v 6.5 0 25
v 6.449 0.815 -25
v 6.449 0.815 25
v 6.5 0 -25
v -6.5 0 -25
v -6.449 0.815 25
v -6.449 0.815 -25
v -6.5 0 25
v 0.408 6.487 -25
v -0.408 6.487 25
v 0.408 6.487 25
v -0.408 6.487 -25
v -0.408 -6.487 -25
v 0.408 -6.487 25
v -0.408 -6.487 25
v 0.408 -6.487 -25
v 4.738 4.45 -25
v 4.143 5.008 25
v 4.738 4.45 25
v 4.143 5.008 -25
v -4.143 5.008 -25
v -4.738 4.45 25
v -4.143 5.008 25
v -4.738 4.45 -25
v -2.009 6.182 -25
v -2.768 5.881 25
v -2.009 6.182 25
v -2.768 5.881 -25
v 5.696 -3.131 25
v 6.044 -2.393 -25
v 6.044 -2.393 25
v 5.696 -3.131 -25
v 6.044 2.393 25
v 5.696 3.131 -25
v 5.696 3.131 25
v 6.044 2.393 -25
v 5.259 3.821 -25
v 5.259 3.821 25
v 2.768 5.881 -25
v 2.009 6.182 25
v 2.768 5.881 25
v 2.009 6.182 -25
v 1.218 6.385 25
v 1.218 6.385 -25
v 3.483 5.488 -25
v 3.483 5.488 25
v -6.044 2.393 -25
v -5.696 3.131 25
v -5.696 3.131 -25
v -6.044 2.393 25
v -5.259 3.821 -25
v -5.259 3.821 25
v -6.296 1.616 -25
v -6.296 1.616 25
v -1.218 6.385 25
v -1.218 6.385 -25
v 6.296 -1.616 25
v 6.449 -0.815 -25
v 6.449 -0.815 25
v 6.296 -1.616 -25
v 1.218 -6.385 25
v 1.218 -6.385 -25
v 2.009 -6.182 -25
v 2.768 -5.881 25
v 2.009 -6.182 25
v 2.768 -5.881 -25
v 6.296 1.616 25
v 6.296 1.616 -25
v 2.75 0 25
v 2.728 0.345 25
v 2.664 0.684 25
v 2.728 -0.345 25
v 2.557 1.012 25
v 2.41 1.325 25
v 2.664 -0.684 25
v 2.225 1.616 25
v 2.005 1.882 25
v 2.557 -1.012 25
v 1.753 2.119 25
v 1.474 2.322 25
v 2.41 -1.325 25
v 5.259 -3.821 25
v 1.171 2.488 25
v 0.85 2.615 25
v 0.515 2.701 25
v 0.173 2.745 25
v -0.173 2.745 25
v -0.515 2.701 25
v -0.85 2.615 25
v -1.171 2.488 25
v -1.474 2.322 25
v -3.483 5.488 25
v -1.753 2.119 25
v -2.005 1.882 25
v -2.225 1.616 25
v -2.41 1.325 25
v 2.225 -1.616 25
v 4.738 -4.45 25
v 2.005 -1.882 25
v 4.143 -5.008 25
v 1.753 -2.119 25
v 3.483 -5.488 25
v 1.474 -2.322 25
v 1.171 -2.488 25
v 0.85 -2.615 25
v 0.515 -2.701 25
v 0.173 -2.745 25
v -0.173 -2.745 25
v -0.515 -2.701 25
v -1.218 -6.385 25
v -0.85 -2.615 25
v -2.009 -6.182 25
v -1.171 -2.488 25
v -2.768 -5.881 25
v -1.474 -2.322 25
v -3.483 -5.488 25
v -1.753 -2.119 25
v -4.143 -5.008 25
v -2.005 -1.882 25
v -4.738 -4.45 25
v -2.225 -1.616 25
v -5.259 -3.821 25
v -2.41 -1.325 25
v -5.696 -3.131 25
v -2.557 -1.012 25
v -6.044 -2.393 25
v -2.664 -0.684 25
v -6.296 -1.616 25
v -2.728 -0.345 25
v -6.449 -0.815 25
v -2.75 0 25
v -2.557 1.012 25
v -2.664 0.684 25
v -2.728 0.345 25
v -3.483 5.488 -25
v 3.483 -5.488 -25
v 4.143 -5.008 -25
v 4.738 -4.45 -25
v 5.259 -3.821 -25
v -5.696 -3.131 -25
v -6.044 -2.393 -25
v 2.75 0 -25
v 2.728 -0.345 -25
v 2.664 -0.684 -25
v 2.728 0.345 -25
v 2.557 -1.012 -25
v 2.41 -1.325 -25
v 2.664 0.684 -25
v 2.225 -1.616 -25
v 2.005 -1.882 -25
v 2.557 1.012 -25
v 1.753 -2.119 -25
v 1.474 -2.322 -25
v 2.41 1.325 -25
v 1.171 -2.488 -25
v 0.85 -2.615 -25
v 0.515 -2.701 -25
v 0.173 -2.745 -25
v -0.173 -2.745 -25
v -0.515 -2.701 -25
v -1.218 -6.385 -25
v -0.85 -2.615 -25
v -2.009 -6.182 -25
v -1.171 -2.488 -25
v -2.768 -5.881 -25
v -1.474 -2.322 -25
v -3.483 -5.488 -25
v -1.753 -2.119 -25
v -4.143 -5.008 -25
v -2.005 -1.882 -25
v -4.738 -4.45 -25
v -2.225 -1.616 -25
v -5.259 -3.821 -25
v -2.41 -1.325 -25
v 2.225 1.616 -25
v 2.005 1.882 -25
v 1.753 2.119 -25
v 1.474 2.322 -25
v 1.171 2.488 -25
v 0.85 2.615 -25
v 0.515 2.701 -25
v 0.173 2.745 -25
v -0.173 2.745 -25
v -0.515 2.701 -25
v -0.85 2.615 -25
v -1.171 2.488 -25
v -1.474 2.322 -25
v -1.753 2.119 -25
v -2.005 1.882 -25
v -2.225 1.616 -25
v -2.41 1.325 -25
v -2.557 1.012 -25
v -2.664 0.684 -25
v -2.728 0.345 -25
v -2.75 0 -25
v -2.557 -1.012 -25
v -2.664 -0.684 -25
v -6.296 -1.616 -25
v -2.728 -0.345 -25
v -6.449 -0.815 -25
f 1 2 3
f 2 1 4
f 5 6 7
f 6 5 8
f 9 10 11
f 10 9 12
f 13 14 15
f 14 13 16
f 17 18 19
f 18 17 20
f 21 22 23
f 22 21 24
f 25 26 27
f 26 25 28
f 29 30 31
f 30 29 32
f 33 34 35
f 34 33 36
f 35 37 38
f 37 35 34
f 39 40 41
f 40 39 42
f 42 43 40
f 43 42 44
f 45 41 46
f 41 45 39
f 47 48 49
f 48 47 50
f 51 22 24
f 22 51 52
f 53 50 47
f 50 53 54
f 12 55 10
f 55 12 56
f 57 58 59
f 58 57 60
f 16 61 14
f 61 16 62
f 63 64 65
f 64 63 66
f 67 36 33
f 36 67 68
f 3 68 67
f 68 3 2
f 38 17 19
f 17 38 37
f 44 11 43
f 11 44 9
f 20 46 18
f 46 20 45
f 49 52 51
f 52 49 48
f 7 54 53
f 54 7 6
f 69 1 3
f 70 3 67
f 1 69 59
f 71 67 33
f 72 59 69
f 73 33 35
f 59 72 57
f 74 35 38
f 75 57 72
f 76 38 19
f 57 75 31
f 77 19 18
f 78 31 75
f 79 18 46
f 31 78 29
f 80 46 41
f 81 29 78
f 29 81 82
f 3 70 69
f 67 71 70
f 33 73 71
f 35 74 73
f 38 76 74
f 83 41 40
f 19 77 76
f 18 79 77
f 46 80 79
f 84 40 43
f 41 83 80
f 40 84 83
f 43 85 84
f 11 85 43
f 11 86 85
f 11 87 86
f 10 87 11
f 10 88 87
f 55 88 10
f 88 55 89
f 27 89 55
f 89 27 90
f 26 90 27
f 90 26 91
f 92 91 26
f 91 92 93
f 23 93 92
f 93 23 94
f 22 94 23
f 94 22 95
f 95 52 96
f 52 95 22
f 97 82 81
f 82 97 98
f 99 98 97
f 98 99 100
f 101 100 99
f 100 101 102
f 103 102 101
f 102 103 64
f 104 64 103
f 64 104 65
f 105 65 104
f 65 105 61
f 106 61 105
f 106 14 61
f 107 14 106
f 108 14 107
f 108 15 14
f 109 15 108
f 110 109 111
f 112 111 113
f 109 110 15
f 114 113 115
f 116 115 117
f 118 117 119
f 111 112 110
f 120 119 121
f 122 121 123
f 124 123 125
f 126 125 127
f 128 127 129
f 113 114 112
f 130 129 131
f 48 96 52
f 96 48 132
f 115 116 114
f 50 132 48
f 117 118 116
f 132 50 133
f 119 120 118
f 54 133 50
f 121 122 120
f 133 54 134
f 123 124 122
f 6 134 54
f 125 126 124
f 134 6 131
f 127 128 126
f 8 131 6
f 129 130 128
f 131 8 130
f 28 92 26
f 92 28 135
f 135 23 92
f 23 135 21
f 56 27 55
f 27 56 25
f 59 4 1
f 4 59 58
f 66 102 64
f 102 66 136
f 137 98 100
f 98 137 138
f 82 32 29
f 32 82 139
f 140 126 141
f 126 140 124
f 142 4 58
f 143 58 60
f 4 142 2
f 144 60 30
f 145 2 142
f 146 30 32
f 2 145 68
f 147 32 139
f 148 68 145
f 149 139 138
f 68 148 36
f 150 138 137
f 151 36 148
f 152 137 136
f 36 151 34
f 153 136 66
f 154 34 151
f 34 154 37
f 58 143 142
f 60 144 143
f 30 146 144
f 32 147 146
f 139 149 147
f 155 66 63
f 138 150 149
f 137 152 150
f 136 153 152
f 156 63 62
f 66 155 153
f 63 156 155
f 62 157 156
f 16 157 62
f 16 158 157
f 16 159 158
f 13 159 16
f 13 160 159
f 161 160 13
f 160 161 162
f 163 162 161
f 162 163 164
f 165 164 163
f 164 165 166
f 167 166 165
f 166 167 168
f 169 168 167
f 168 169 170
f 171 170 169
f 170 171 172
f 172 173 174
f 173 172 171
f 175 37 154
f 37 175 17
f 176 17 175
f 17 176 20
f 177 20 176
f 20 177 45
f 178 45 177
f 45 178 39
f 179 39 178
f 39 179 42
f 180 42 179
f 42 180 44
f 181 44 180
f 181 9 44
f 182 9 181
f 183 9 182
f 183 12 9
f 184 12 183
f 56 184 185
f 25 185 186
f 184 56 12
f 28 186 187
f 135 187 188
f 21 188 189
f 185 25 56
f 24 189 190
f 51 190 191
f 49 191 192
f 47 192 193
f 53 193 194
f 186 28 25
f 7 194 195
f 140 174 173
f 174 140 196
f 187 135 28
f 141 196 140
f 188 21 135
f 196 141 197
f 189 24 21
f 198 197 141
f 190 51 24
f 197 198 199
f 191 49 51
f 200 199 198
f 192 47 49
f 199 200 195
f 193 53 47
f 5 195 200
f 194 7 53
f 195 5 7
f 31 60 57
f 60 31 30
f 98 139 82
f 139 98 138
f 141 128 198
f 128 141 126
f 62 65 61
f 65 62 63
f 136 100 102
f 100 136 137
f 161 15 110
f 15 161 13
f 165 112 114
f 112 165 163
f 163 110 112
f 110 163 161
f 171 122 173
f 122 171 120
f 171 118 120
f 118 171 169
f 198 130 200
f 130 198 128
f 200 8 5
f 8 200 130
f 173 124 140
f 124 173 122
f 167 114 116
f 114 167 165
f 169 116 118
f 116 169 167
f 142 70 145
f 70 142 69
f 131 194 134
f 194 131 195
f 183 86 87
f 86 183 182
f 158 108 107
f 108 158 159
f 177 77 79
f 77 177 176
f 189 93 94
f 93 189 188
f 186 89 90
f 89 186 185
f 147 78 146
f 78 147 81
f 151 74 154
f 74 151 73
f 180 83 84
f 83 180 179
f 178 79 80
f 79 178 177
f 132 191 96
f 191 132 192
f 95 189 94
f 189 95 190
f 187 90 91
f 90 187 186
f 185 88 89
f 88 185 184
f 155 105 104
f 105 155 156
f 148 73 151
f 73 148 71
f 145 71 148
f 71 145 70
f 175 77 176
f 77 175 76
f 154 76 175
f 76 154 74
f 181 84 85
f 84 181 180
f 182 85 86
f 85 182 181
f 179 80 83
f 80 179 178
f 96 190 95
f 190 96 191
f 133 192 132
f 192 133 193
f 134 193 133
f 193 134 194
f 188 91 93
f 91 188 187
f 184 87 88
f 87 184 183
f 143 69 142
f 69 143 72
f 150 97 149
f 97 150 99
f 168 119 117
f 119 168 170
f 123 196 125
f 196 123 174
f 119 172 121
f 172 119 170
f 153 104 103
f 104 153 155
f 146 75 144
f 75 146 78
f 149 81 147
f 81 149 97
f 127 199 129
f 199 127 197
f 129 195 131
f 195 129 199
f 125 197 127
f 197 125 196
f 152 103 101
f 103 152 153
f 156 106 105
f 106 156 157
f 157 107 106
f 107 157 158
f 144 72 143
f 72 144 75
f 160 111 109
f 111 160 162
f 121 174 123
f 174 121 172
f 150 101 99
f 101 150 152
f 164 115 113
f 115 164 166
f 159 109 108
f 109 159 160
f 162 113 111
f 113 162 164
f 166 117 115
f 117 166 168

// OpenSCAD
$fn = 50;


difference() {
	union() {
		translate(v = [0, 0, -25.0000000000]) {
			cylinder(h = 50, r = 6.5000000000);
		}
	}
	union() {
		translate(v = [0, 0, -100.0000000000]) {
			cylinder(h = 200, r = 2.7500000000);
		}
	}
}
